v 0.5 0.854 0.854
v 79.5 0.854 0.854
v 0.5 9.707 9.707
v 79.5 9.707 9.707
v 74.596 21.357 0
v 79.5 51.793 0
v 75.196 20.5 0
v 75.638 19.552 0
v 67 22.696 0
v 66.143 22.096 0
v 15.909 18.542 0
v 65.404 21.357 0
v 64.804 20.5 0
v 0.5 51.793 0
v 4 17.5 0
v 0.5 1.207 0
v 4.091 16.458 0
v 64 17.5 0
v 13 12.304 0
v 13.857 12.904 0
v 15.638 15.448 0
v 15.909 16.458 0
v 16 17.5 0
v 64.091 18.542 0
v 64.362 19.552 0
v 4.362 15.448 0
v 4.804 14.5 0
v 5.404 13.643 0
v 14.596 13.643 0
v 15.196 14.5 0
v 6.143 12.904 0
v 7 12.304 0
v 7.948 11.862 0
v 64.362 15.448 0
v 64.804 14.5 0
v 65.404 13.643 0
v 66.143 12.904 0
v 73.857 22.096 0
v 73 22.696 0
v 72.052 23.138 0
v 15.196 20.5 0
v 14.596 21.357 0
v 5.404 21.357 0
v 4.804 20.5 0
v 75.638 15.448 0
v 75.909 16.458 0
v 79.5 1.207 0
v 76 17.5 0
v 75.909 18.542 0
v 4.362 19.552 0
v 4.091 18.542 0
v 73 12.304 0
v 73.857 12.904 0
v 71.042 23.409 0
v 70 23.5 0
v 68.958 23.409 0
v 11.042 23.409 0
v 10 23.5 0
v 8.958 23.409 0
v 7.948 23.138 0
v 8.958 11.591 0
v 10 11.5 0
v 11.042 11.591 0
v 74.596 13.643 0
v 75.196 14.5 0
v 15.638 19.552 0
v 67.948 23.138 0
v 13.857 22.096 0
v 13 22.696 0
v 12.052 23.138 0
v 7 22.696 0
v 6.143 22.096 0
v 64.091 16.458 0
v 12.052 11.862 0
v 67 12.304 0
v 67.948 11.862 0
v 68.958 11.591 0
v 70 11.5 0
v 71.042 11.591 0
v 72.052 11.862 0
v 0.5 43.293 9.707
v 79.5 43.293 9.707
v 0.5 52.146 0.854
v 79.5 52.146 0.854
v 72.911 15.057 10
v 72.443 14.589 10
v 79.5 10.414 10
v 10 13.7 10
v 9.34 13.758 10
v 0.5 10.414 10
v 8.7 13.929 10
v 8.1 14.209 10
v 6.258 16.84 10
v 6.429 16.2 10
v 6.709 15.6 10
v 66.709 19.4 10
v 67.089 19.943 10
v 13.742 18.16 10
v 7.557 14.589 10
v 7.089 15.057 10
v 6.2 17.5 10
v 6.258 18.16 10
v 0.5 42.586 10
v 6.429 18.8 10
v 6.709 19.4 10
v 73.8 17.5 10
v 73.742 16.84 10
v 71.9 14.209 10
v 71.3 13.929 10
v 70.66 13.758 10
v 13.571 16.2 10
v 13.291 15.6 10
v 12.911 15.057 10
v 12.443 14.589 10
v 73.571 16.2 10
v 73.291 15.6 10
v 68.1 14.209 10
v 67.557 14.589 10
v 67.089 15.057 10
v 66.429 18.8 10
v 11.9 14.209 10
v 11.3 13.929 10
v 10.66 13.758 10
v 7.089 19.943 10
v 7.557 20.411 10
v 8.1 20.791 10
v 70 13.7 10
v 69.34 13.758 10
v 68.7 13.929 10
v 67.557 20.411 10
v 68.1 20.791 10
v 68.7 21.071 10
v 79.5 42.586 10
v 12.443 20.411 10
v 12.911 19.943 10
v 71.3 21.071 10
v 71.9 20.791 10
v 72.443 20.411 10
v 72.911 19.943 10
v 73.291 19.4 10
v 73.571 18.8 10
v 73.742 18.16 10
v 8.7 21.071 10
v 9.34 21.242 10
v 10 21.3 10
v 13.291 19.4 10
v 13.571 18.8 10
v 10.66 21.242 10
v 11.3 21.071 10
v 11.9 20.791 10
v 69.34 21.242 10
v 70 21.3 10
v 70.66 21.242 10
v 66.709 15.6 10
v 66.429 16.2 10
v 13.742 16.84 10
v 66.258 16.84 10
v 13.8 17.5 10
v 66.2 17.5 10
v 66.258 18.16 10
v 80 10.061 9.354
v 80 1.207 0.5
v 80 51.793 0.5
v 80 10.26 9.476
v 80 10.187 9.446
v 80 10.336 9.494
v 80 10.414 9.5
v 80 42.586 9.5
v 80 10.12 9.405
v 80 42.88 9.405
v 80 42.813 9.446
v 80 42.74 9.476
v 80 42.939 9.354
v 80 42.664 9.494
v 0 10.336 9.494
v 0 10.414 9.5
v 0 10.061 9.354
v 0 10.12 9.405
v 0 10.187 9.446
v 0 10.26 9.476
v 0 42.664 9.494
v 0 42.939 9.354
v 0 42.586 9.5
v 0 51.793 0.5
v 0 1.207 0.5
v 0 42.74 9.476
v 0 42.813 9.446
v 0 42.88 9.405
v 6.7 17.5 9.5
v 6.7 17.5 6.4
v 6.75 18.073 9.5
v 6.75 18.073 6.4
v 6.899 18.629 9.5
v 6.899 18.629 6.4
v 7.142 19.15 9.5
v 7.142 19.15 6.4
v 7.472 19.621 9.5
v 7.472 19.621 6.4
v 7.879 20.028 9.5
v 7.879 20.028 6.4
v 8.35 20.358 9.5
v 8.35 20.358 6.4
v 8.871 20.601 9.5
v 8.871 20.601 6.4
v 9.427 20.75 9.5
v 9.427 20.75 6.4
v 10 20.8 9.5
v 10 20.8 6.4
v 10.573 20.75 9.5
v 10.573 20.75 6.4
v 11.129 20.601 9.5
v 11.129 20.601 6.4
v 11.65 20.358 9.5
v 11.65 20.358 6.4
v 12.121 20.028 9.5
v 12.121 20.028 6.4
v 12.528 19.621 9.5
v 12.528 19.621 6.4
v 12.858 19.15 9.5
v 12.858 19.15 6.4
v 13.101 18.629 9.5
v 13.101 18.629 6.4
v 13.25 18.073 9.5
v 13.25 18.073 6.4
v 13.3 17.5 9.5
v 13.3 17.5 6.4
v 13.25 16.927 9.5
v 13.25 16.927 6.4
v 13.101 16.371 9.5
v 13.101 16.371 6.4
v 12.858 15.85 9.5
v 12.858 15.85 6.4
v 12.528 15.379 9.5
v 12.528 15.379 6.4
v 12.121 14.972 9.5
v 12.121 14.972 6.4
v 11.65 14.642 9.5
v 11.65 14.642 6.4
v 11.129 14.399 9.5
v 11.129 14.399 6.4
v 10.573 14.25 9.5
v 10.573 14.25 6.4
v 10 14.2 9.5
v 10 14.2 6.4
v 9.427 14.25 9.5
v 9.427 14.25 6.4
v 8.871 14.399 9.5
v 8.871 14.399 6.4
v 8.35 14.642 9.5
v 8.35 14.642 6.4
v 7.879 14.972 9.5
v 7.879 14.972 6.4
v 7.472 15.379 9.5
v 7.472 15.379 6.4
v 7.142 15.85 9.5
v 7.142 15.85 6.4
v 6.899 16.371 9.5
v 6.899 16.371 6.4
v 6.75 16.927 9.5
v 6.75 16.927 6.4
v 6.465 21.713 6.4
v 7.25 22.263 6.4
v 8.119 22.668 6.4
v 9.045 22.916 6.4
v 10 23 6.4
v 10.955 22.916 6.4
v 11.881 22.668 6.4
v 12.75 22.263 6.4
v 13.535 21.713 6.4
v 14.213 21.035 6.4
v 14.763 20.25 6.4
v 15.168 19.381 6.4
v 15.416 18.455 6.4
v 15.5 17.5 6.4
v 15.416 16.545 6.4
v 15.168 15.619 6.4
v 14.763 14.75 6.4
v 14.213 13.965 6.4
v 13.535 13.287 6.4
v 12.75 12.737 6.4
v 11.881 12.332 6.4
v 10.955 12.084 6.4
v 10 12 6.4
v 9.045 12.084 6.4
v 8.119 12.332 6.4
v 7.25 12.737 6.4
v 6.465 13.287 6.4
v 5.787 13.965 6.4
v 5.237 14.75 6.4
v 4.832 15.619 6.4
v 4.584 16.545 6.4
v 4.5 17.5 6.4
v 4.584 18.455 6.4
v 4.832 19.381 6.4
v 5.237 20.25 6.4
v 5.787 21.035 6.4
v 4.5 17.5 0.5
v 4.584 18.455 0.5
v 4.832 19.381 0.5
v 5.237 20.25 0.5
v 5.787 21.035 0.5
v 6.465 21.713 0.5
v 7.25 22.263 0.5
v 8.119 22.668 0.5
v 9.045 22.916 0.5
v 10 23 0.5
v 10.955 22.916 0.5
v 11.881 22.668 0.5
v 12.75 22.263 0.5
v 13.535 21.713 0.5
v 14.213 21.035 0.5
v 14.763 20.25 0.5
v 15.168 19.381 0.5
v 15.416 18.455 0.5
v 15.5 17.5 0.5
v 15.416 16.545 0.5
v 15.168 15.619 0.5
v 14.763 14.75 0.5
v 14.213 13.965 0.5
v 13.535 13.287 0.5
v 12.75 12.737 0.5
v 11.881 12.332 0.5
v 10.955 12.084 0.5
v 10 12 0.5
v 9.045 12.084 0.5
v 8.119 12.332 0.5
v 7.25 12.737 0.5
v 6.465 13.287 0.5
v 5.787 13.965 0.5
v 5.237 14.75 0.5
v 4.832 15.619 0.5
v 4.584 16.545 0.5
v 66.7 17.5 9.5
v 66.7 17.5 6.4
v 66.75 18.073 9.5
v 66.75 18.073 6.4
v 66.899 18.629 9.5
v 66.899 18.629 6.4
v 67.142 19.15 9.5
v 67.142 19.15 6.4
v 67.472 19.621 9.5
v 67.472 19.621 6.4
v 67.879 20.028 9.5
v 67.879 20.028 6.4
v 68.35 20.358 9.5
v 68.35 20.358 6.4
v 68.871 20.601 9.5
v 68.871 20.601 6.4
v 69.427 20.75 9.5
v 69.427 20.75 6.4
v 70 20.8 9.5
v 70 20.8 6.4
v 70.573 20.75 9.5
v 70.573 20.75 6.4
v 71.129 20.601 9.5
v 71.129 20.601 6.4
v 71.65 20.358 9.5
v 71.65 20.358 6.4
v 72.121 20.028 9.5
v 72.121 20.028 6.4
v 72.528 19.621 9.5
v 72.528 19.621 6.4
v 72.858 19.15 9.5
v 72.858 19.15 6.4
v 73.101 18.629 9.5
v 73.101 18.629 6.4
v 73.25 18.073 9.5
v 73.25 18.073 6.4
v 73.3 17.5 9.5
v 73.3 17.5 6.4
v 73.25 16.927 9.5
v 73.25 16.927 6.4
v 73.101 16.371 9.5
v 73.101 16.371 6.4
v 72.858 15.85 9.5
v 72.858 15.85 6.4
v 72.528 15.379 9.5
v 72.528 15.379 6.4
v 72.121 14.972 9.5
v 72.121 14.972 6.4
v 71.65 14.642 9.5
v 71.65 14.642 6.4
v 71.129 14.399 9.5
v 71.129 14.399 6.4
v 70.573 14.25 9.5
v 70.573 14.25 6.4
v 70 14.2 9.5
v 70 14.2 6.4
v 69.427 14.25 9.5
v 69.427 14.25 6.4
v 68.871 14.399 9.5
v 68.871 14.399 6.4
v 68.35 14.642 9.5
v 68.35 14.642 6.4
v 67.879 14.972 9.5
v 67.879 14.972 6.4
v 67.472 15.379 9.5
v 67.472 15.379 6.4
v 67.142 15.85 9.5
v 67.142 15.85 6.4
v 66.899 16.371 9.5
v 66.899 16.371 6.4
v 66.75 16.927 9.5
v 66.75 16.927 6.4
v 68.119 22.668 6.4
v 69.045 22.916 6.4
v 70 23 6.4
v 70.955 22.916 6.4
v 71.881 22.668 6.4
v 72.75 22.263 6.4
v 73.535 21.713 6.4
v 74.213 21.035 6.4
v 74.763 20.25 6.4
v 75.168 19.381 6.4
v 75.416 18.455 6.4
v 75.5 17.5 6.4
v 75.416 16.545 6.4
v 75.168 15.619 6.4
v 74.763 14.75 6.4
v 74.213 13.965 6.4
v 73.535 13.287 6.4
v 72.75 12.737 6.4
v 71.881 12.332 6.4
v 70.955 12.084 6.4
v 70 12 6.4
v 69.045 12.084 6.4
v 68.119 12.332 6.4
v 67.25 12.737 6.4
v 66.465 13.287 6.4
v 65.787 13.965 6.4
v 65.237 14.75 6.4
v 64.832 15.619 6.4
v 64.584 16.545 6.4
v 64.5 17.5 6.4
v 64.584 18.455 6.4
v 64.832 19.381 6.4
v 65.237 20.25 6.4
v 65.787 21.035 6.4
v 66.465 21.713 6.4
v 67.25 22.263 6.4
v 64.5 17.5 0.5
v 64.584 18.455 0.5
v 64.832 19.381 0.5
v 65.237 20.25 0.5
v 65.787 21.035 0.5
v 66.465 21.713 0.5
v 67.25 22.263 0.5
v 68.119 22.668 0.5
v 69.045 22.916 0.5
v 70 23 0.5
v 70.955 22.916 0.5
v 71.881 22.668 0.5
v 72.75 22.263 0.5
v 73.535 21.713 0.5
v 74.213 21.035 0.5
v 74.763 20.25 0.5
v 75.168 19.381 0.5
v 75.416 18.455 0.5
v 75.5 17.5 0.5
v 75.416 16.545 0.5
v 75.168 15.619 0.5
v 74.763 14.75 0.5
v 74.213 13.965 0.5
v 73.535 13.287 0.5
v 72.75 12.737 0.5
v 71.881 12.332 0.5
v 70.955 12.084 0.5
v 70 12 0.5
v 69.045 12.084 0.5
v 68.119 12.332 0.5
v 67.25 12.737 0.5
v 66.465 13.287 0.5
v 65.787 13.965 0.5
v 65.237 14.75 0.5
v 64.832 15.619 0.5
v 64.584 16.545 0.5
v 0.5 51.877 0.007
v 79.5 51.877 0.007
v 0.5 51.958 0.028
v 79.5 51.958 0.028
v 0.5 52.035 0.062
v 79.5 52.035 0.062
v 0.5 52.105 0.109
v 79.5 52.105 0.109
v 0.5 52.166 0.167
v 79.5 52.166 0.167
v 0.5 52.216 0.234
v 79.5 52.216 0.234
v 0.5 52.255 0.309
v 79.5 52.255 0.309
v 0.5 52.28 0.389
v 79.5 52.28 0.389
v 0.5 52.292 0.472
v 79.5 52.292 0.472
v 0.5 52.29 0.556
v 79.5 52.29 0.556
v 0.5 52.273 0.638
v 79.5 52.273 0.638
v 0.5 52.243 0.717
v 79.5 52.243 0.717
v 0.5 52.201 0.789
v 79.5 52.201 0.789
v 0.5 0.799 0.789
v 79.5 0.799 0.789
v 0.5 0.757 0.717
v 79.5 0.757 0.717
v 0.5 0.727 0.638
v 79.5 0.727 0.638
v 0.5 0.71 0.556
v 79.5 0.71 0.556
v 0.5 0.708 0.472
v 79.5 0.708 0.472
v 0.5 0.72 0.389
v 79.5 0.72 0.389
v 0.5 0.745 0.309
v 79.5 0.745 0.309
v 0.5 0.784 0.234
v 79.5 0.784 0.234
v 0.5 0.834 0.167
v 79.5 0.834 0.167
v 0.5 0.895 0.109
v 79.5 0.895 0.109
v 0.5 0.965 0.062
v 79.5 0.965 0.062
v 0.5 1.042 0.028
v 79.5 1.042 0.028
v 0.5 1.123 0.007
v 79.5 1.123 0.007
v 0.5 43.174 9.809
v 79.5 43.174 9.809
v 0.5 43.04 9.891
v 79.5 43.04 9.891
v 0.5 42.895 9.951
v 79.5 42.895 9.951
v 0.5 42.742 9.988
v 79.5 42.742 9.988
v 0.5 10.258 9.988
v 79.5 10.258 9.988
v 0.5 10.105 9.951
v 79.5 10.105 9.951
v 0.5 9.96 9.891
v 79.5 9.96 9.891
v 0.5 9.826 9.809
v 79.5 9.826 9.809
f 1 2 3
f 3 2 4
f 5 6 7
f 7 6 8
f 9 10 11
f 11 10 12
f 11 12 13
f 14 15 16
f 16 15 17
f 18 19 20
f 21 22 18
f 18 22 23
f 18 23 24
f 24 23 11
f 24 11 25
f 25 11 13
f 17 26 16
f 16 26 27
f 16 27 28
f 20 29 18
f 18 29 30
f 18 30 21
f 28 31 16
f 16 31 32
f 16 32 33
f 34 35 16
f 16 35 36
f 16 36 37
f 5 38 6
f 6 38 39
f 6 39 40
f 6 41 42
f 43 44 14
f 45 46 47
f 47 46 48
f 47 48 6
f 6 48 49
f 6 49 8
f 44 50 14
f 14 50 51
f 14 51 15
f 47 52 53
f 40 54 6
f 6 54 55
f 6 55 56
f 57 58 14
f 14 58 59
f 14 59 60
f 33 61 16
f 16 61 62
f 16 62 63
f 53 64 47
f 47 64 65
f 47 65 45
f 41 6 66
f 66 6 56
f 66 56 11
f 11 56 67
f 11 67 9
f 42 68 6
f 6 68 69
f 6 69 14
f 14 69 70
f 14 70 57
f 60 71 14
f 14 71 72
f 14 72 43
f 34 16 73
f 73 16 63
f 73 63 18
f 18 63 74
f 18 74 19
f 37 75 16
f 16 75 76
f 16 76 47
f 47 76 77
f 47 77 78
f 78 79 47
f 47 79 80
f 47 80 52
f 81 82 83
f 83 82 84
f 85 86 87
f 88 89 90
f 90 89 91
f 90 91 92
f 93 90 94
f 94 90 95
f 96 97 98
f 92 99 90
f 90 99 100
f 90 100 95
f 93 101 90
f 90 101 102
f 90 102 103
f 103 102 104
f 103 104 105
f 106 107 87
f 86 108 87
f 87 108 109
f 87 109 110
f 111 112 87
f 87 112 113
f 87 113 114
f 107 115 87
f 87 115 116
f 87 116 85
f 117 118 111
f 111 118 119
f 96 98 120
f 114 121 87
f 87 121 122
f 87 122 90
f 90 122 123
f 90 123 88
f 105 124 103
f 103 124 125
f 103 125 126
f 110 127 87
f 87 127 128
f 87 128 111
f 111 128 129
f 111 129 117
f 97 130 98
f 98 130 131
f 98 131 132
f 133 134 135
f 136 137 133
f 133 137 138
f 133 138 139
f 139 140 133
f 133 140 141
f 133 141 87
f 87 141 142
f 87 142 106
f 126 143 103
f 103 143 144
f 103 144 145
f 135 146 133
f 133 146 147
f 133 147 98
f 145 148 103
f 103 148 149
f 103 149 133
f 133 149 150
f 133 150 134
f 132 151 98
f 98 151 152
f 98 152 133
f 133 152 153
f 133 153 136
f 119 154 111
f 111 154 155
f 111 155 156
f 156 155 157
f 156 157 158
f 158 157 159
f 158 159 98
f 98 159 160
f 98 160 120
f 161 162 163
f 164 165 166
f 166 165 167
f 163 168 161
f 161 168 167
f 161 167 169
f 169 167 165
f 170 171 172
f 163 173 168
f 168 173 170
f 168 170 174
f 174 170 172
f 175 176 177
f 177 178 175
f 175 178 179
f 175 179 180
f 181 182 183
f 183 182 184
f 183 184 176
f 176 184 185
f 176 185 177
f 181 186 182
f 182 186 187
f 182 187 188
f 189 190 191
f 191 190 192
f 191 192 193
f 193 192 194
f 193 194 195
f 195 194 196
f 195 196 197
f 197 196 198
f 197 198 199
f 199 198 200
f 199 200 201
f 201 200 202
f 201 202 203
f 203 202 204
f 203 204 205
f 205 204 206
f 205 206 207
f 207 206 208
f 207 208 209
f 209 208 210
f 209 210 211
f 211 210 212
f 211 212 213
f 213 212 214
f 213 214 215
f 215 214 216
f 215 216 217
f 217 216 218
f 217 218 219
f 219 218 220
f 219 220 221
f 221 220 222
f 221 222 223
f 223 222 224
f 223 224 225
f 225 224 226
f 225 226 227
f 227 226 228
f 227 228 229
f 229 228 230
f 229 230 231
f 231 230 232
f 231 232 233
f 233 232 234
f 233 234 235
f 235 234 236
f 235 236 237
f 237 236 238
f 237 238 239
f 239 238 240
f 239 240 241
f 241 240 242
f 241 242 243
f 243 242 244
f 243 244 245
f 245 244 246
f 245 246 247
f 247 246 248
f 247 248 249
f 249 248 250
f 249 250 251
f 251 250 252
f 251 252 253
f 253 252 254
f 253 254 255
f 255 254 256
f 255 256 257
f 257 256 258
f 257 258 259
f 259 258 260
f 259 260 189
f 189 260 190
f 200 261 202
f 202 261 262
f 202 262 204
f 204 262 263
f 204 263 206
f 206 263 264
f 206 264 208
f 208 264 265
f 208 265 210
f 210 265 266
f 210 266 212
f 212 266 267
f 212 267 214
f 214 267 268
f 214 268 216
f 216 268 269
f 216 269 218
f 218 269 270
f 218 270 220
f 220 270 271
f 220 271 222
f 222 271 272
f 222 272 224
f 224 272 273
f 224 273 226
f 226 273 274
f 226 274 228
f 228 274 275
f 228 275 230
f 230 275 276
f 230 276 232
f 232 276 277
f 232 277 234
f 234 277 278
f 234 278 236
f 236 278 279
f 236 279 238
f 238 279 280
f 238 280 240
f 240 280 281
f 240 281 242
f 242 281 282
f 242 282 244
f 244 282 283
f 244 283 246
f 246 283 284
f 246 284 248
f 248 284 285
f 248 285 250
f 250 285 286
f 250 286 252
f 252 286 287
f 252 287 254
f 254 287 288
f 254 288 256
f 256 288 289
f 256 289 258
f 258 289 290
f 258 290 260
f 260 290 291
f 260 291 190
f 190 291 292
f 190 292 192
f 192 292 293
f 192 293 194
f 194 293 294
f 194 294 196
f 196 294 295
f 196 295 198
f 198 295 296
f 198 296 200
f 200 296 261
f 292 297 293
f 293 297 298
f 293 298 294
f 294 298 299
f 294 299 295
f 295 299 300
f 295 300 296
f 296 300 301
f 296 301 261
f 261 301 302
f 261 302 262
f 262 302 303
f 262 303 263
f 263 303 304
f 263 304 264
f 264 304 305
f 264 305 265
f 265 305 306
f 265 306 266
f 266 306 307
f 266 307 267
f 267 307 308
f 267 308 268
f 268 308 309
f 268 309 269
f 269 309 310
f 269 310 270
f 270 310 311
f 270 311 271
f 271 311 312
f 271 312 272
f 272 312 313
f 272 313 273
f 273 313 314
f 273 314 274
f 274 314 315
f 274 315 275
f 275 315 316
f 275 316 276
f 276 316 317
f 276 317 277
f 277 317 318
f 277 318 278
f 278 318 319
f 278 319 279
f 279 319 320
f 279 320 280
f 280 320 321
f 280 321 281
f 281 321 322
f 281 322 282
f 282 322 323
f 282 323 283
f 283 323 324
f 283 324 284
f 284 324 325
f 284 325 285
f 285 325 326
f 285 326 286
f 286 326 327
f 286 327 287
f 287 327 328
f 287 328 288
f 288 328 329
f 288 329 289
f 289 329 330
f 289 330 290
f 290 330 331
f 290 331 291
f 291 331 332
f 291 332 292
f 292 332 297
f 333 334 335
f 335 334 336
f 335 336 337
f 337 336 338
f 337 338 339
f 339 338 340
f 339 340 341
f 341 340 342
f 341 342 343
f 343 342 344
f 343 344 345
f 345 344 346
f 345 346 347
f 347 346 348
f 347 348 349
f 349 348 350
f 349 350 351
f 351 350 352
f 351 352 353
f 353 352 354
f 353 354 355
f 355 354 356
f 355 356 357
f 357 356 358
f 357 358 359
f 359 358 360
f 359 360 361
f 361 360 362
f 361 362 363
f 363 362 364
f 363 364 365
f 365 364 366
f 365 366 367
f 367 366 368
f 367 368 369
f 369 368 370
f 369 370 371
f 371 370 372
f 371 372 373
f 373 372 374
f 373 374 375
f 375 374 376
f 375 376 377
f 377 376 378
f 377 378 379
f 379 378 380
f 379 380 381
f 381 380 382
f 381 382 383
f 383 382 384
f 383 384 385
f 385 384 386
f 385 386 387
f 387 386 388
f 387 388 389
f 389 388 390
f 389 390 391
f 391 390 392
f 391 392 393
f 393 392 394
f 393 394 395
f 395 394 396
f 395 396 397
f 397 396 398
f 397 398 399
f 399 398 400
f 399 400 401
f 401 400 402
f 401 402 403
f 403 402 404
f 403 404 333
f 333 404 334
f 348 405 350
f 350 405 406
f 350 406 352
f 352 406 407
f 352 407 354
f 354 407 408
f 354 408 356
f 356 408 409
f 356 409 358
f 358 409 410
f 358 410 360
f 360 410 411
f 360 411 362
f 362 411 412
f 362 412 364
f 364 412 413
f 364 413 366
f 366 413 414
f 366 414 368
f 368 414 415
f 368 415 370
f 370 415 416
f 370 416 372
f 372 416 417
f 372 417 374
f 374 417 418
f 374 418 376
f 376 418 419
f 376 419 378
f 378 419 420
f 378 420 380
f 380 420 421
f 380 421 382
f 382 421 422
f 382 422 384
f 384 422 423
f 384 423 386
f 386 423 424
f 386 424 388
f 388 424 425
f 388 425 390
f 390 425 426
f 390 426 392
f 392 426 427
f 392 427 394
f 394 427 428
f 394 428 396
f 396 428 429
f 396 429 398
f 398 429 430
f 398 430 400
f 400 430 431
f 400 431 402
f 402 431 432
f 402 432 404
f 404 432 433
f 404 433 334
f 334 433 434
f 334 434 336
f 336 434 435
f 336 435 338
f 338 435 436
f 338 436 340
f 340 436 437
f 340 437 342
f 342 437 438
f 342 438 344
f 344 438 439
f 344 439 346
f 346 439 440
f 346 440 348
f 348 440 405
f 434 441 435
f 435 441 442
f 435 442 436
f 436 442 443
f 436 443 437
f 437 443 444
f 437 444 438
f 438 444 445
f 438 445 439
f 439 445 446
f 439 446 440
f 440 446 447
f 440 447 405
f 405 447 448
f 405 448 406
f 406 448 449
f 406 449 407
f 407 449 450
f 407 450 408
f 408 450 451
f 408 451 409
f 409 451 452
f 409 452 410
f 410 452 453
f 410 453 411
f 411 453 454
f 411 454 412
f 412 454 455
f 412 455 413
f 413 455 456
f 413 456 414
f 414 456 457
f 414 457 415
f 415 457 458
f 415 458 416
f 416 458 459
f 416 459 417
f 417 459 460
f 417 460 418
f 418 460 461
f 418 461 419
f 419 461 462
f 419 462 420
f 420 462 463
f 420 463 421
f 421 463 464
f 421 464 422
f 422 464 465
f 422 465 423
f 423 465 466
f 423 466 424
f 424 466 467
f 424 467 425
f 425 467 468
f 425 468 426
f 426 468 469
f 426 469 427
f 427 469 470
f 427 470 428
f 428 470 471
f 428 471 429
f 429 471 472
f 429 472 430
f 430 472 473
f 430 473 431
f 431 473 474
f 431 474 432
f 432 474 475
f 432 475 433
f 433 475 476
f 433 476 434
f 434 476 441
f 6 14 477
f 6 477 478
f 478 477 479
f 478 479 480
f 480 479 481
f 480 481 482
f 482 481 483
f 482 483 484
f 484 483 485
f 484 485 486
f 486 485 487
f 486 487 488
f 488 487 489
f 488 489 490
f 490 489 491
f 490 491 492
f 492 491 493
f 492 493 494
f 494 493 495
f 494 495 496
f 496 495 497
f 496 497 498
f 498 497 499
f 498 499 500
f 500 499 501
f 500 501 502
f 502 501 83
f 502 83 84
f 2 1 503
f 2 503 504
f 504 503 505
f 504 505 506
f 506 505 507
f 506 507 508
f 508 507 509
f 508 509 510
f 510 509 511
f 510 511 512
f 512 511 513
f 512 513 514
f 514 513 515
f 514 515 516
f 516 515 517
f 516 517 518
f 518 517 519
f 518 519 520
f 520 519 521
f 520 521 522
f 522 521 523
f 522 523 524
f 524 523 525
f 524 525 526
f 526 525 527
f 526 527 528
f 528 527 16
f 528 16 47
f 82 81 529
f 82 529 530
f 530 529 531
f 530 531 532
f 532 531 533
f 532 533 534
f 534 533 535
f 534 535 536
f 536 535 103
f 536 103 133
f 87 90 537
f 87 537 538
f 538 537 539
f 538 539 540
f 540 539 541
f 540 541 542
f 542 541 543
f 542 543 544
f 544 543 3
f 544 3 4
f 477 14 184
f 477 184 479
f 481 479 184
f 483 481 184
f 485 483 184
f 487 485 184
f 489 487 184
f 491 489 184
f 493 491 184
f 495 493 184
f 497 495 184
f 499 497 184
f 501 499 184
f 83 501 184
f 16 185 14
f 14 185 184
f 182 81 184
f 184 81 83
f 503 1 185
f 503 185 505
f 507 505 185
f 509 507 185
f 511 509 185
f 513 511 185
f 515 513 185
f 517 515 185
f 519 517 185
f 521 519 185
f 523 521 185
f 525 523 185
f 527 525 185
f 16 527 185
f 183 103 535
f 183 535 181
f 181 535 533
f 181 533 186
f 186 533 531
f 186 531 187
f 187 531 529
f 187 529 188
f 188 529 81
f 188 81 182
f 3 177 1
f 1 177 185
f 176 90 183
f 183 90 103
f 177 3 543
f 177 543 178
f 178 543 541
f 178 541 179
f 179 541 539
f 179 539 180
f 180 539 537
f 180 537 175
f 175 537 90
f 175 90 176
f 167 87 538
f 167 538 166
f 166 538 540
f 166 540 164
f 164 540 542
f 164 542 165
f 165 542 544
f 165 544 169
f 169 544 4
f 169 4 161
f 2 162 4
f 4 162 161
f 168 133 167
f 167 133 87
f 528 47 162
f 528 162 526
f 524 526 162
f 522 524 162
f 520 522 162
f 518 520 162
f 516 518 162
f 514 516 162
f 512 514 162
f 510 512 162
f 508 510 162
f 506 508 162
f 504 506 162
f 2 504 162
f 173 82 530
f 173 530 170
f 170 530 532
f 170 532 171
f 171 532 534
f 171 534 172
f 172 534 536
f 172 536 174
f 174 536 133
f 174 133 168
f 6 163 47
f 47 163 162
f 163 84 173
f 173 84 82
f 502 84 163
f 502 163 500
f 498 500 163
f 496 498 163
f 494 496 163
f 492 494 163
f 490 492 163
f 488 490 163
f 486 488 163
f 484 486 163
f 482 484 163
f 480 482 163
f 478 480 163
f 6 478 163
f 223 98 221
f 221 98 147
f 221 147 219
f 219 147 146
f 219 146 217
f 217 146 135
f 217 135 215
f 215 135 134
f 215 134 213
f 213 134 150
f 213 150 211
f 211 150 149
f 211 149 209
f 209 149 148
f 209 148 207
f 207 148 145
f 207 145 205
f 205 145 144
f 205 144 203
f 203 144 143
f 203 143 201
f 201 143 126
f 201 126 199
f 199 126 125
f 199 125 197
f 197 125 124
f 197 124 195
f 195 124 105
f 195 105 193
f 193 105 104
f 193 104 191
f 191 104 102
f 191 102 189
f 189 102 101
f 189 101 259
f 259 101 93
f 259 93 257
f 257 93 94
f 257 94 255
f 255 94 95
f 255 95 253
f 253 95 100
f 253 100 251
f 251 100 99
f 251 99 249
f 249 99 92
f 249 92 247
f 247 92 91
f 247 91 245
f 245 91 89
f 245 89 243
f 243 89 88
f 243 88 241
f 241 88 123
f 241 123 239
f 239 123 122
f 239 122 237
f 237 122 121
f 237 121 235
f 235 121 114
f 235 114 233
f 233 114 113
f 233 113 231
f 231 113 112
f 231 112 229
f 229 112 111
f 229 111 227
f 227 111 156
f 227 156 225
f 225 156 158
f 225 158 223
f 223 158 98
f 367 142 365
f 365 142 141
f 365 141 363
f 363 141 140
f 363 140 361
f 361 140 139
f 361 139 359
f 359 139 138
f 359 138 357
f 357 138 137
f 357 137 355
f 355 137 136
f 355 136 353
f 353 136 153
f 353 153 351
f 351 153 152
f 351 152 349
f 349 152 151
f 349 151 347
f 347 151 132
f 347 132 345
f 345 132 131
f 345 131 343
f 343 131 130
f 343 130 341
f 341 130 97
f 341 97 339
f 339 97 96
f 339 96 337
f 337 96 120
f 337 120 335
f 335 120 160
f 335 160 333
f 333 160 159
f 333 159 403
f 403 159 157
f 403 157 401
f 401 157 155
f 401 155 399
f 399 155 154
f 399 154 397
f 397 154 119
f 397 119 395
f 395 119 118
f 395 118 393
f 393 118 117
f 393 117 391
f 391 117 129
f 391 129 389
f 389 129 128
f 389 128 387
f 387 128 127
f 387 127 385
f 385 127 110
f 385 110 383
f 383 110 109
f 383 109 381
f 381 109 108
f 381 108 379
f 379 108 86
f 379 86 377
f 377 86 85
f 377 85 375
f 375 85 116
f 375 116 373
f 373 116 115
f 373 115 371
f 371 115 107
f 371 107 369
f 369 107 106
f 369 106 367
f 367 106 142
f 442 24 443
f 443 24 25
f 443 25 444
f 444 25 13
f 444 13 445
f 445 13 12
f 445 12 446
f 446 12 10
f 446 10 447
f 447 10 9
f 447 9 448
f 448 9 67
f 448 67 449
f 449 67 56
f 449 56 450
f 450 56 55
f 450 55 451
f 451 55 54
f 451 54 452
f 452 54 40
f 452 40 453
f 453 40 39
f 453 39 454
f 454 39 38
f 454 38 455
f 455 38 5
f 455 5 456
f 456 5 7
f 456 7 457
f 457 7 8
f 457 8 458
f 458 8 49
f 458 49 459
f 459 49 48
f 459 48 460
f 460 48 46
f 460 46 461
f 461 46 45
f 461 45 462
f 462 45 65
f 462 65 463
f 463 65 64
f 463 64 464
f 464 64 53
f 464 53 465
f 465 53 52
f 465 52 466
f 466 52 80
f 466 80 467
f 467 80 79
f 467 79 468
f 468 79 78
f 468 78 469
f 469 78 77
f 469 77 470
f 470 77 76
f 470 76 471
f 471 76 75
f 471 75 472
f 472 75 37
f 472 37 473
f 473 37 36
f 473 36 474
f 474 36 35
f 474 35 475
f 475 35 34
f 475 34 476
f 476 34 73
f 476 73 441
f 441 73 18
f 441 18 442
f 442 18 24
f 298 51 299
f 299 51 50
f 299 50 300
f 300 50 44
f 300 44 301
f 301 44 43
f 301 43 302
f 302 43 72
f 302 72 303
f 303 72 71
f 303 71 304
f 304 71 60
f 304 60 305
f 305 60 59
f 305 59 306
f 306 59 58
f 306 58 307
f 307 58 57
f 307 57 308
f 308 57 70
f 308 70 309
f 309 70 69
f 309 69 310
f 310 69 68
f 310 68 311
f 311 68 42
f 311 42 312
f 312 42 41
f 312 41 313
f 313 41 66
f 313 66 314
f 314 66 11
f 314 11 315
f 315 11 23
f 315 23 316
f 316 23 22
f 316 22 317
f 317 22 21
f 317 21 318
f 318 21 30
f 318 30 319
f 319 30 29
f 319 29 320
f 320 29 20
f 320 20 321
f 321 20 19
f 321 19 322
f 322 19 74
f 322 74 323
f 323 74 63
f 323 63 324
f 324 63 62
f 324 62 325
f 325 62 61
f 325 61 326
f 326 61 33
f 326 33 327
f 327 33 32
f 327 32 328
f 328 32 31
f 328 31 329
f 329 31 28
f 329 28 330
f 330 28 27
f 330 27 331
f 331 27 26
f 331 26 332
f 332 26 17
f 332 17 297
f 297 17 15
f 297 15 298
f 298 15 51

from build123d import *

# Parameters (mm, degrees)
BOSS_EXTRUDE1_DEPTH                                 = 80
CBORE_FOR_M6_HEX_SOCKET_HEAD_CAP_SCREW1_D           = 6.6
CBORE_FOR_M6_HEX_SOCKET_HEAD_CAP_SCREW1_CBORE_D     = 11
CBORE_FOR_M6_HEX_SOCKET_HEAD_CAP_SCREW1_CBORE_DEPTH = 6.4
FILLET1_R                                           = 0.5
FILLET2_R                                           = 1
CHAMFER1_SIZE                                       = 0.5
CHAMFER2_SIZE                                       = 0.5


with BuildPart() as part:
    # Sketch2 → Boss-Extrude1 (new body)
    with BuildSketch(Plane(origin=(0, 0, 0), x_dir=(0, 0, -1), z_dir=(1, 0, 0))):
        Polygon((0, 0), (0, 53), (-10, 43), (-10, 10), align=None)
    extrude(amount=BOSS_EXTRUDE1_DEPTH)

    # CBORE for M6 Hex Socket Head Cap Screw1 (through all)
    with Locations(Plane(origin=(0, 0, 0), x_dir=(-1, 0, 0), z_dir=(0, 0, -1))):
        with Locations((-70, 17.5), (-10, 17.5)):
            CounterBoreHole(CBORE_FOR_M6_HEX_SOCKET_HEAD_CAP_SCREW1_D / 2, CBORE_FOR_M6_HEX_SOCKET_HEAD_CAP_SCREW1_CBORE_D / 2, CBORE_FOR_M6_HEX_SOCKET_HEAD_CAP_SCREW1_CBORE_DEPTH)

    # Fillet1
    fillet1_edges = [part.edges().sort_by_distance(p)[0] for p in [
        (40, 53, 0),
        (40, 0, 0),
    ]]
    fillet(fillet1_edges, radius=FILLET1_R)

    # Fillet2
    fillet2_edges = [part.edges().sort_by_distance(p)[0] for p in [
        (40, 10, 10),
        (40, 43, 10),
    ]]
    fillet(fillet2_edges, radius=FILLET2_R)

    # Chamfer1
    chamfer1_edges = [part.edges().sort_by_distance(p)[0] for p in [
        (6.7, 17.5, 10),
        (66.7, 17.5, 10),
        (0, 47.719669914, 5.280330086),
        (80, 47.719669914, 5.280330086),
        (0, 26.5, 0),
        (0, 0.745167015, 0.308658284),
        (0, 52.254832985, 0.308658284),
        (80, 26.5, 0),
        (80, 0.745167015, 0.308658284),
        (80, 52.254832985, 0.308658284),
        (0, 26.5, 10),
        (80, 26.5, 10),
        (0, 5.280330086, 5.280330086),
        (0, 10.03153013, 9.923879533),
        (0, 42.96846987, 9.923879533),
        (80, 5.280330086, 5.280330086),
        (80, 10.03153013, 9.923879533),
        (80, 42.96846987, 9.923879533),
    ]]
    chamfer(chamfer1_edges, length=CHAMFER1_SIZE)

    # Chamfer2
    chamfer2_edges = [part.edges().sort_by_distance(p)[0] for p in [
        (15.5, 17.5, 0),
        (75.5, 17.5, 0),
    ]]
    chamfer(chamfer2_edges, length=CHAMFER2_SIZE)


solid = part.part
